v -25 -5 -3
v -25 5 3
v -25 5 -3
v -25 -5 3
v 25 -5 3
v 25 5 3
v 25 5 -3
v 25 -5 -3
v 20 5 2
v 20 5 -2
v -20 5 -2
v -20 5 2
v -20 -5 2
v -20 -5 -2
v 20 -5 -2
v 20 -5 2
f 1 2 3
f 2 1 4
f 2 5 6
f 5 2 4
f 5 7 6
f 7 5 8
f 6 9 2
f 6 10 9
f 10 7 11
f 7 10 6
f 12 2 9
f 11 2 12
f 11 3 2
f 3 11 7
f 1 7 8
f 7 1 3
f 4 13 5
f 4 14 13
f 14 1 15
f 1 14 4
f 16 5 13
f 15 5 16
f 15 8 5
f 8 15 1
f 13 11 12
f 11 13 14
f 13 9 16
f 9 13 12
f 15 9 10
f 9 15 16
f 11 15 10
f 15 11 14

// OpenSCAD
difference() {
    cube(size=[50,10,6], center=true);
    cube(size=[40,10.01,4], center=true);
}
